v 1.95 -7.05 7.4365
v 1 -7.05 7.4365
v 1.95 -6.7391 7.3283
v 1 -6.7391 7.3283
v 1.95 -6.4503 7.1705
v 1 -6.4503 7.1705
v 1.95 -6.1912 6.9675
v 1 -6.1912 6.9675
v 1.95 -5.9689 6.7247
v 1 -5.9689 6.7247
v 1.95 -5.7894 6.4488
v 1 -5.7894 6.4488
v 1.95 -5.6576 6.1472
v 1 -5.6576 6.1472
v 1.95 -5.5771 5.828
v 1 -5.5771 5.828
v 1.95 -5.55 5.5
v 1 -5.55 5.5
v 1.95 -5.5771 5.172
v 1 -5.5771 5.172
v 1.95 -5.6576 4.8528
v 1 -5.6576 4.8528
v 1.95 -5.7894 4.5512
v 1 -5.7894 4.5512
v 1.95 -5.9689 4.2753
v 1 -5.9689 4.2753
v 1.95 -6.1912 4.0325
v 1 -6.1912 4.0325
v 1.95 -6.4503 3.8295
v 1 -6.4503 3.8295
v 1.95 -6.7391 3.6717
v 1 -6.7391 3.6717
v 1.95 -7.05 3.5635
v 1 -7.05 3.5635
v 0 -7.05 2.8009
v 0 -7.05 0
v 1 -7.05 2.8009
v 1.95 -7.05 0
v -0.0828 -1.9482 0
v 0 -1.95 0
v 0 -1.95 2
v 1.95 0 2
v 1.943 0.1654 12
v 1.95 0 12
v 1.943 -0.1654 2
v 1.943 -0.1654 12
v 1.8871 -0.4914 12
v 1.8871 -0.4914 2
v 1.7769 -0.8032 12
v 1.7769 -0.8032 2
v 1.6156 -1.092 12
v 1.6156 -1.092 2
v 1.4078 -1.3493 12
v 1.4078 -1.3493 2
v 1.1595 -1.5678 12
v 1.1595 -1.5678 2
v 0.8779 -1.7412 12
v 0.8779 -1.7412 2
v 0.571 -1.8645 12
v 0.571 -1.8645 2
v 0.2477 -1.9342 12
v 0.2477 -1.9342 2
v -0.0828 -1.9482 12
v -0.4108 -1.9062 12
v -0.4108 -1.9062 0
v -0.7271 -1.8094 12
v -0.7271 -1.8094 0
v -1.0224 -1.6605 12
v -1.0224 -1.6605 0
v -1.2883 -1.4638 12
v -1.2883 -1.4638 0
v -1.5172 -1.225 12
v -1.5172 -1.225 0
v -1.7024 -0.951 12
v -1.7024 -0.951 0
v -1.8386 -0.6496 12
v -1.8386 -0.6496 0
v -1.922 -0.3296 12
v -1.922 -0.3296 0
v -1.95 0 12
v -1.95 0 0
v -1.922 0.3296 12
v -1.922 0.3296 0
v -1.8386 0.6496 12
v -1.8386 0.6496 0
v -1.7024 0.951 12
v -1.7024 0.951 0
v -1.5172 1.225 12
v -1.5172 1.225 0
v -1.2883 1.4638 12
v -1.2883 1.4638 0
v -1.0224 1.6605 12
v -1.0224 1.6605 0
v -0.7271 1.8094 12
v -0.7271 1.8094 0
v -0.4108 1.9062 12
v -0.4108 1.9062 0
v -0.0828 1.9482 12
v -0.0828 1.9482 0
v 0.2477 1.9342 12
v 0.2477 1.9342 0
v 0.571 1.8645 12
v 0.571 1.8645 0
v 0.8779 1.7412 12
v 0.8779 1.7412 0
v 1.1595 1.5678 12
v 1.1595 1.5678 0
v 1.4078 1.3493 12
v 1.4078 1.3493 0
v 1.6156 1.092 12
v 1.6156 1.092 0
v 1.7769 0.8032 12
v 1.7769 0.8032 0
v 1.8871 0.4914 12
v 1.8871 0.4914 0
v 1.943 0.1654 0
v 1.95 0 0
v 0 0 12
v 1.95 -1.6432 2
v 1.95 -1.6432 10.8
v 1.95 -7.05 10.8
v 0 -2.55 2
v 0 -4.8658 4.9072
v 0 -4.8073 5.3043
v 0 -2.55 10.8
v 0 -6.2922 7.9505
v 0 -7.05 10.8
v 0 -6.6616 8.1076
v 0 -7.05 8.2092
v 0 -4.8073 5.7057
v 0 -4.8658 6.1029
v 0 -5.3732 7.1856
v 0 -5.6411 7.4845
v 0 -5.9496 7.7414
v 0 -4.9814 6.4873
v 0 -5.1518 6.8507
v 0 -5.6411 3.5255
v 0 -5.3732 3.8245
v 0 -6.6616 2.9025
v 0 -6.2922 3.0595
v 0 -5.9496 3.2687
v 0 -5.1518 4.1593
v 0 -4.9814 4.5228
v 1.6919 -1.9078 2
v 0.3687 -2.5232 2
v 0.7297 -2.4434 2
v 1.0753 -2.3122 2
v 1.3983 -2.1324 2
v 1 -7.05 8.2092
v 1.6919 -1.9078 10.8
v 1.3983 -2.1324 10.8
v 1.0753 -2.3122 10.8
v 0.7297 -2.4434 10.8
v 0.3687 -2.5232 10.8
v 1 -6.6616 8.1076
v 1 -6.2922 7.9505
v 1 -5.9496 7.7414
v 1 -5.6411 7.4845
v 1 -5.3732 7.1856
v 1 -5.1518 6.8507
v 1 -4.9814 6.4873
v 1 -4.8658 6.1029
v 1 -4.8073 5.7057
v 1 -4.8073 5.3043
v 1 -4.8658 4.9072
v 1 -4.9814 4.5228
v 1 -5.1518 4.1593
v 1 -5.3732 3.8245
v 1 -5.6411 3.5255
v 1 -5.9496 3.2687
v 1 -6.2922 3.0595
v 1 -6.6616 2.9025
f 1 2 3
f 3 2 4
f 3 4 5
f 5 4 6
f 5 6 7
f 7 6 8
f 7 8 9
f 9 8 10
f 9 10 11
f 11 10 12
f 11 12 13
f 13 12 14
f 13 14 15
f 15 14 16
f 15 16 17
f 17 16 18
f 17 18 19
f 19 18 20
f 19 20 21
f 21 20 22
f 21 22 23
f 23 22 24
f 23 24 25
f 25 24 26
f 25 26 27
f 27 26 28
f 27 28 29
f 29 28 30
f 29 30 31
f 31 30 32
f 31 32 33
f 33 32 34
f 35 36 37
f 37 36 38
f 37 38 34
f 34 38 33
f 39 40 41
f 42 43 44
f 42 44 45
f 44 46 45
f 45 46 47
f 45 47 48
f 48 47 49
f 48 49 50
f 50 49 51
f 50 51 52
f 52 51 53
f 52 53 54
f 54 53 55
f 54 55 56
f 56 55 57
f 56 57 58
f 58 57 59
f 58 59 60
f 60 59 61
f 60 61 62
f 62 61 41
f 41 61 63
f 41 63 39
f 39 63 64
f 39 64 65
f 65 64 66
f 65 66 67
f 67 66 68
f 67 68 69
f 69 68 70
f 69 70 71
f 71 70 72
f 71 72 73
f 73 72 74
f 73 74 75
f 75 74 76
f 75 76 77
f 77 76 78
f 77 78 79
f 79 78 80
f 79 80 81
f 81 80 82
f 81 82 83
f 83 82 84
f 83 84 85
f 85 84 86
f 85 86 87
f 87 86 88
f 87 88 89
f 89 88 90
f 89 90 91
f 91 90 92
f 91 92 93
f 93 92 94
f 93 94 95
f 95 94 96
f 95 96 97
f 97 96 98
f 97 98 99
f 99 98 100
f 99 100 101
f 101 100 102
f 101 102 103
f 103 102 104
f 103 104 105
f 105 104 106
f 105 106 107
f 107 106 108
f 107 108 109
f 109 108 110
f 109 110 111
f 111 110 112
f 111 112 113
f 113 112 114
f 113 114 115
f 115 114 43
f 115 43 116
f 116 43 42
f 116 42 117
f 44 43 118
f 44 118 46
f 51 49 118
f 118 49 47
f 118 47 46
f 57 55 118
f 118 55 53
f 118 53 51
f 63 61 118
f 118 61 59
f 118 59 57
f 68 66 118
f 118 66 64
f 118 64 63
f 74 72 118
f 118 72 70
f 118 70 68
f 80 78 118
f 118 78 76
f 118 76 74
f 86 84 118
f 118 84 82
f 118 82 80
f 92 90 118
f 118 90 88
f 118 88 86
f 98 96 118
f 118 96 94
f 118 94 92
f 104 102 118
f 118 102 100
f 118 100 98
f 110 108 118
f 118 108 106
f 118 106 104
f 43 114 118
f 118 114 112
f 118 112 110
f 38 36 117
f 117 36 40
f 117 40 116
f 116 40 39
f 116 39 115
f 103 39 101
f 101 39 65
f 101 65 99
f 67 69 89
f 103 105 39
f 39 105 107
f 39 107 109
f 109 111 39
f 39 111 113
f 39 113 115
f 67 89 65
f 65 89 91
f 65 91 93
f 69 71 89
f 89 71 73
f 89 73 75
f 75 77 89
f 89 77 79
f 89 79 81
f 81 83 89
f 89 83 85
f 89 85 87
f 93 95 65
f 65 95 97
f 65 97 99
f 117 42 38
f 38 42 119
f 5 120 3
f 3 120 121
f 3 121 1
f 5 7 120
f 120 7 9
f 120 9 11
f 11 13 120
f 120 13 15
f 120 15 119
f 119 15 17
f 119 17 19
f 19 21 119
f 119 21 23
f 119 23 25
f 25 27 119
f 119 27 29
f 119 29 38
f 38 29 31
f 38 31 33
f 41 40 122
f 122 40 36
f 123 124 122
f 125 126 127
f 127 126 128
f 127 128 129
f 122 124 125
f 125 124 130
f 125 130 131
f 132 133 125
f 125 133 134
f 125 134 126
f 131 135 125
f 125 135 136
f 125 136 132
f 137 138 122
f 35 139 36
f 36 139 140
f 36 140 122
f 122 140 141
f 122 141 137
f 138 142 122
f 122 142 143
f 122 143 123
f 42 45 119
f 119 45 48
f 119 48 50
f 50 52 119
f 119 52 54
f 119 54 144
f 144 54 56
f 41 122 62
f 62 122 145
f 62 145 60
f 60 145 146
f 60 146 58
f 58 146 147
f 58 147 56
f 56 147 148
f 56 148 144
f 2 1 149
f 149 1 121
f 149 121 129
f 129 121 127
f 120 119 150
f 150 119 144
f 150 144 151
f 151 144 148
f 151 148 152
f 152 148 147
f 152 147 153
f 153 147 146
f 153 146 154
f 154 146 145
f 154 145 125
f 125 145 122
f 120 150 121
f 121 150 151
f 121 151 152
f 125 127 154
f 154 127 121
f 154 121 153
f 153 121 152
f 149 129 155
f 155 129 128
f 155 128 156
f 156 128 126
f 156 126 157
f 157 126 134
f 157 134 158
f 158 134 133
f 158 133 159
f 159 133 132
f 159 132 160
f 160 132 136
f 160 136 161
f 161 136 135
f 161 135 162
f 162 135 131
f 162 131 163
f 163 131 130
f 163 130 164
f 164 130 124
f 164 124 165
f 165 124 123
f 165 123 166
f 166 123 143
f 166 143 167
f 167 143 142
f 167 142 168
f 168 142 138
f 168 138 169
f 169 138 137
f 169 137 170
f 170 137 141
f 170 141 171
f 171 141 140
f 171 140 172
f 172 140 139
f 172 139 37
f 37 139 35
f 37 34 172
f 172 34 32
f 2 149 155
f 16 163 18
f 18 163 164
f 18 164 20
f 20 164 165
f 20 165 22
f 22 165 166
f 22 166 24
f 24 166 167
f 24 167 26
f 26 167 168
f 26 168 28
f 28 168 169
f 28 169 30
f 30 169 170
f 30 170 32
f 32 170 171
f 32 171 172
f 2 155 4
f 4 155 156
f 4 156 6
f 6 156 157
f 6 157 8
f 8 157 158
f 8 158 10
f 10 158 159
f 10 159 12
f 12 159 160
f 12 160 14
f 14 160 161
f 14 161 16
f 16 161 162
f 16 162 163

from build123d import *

# Parameters (mm, degrees)
SKETCH_1_R          = 1.95
EXTRUDE_1_DEPTH     = 12
SKETCH_4_W          = 2
SKETCH_4_H          = 9
EXTRUDE_2_DEPTH     = 1.95
EXTRUDE_4_DEPTH     = 8.8
SKETCH_9_R          = 2
CUT_EXTRUDE_2_DEPTH = 17
SKETCH_13_R         = 2.75
CUT_EXTRUDE_6_DEPTH = 1
CUT_EXTRUDE_7_DEPTH = 13.389713


with BuildPart() as part:
    # 스케치1 → 보스-돌출1 (new body)
    with BuildSketch(Plane.XY):
        Circle(SKETCH_1_R)
    extrude(amount=EXTRUDE_1_DEPTH)

    # 스케치4 → 보스-돌출2 (add)
    with BuildSketch(Plane(origin=(0, 0, 0), x_dir=(0, 0, -1), z_dir=(1, 0, 0))):
        with Locations((-1, -2.55)):
            Rectangle(SKETCH_4_W, SKETCH_4_H)
    extrude(amount=EXTRUDE_2_DEPTH)

    # 스케치8 → 보스-돌출4 (add)
    with BuildSketch(Plane.XY.offset(2)):
        with BuildLine():
            ThreePointArc((1.95, -1.643168), (1.075273, -2.312204), (0, -2.55))
            Line((0, -2.55), (0, -7.05))
            Line((0, -7.05), (1.95, -7.05))
            Line((1.95, -7.05), (1.95, -1.643168))
        make_face()
    extrude(amount=EXTRUDE_4_DEPTH)

    # 스케치9 → 컷-돌출2 (cut)
    with BuildSketch(Plane.ZY):
        with Locations((5.5, -7.55)):
            Circle(SKETCH_9_R)
    extrude(amount=-CUT_EXTRUDE_2_DEPTH, mode=Mode.SUBTRACT)

    # 스케치13 → 컷-돌출6 (cut)
    with BuildSketch(Plane.ZY):
        with Locations((5.505014, -7.55)):
            Circle(SKETCH_13_R)
    extrude(amount=-CUT_EXTRUDE_6_DEPTH, mode=Mode.SUBTRACT)

    # 스케치12 → 컷-돌출7 (cut, through all)
    with BuildSketch(Plane.XY.offset(2)):
        with BuildLine():
            Line((1.95, 0), (1.95, 1.95))
            Line((1.95, 1.95), (0, 1.95))
            ThreePointArc((0, 1.95), (1.378858, 1.378858), (1.95, 0))
        make_face()
    extrude(amount=-CUT_EXTRUDE_7_DEPTH, mode=Mode.SUBTRACT)


solid = part.part
